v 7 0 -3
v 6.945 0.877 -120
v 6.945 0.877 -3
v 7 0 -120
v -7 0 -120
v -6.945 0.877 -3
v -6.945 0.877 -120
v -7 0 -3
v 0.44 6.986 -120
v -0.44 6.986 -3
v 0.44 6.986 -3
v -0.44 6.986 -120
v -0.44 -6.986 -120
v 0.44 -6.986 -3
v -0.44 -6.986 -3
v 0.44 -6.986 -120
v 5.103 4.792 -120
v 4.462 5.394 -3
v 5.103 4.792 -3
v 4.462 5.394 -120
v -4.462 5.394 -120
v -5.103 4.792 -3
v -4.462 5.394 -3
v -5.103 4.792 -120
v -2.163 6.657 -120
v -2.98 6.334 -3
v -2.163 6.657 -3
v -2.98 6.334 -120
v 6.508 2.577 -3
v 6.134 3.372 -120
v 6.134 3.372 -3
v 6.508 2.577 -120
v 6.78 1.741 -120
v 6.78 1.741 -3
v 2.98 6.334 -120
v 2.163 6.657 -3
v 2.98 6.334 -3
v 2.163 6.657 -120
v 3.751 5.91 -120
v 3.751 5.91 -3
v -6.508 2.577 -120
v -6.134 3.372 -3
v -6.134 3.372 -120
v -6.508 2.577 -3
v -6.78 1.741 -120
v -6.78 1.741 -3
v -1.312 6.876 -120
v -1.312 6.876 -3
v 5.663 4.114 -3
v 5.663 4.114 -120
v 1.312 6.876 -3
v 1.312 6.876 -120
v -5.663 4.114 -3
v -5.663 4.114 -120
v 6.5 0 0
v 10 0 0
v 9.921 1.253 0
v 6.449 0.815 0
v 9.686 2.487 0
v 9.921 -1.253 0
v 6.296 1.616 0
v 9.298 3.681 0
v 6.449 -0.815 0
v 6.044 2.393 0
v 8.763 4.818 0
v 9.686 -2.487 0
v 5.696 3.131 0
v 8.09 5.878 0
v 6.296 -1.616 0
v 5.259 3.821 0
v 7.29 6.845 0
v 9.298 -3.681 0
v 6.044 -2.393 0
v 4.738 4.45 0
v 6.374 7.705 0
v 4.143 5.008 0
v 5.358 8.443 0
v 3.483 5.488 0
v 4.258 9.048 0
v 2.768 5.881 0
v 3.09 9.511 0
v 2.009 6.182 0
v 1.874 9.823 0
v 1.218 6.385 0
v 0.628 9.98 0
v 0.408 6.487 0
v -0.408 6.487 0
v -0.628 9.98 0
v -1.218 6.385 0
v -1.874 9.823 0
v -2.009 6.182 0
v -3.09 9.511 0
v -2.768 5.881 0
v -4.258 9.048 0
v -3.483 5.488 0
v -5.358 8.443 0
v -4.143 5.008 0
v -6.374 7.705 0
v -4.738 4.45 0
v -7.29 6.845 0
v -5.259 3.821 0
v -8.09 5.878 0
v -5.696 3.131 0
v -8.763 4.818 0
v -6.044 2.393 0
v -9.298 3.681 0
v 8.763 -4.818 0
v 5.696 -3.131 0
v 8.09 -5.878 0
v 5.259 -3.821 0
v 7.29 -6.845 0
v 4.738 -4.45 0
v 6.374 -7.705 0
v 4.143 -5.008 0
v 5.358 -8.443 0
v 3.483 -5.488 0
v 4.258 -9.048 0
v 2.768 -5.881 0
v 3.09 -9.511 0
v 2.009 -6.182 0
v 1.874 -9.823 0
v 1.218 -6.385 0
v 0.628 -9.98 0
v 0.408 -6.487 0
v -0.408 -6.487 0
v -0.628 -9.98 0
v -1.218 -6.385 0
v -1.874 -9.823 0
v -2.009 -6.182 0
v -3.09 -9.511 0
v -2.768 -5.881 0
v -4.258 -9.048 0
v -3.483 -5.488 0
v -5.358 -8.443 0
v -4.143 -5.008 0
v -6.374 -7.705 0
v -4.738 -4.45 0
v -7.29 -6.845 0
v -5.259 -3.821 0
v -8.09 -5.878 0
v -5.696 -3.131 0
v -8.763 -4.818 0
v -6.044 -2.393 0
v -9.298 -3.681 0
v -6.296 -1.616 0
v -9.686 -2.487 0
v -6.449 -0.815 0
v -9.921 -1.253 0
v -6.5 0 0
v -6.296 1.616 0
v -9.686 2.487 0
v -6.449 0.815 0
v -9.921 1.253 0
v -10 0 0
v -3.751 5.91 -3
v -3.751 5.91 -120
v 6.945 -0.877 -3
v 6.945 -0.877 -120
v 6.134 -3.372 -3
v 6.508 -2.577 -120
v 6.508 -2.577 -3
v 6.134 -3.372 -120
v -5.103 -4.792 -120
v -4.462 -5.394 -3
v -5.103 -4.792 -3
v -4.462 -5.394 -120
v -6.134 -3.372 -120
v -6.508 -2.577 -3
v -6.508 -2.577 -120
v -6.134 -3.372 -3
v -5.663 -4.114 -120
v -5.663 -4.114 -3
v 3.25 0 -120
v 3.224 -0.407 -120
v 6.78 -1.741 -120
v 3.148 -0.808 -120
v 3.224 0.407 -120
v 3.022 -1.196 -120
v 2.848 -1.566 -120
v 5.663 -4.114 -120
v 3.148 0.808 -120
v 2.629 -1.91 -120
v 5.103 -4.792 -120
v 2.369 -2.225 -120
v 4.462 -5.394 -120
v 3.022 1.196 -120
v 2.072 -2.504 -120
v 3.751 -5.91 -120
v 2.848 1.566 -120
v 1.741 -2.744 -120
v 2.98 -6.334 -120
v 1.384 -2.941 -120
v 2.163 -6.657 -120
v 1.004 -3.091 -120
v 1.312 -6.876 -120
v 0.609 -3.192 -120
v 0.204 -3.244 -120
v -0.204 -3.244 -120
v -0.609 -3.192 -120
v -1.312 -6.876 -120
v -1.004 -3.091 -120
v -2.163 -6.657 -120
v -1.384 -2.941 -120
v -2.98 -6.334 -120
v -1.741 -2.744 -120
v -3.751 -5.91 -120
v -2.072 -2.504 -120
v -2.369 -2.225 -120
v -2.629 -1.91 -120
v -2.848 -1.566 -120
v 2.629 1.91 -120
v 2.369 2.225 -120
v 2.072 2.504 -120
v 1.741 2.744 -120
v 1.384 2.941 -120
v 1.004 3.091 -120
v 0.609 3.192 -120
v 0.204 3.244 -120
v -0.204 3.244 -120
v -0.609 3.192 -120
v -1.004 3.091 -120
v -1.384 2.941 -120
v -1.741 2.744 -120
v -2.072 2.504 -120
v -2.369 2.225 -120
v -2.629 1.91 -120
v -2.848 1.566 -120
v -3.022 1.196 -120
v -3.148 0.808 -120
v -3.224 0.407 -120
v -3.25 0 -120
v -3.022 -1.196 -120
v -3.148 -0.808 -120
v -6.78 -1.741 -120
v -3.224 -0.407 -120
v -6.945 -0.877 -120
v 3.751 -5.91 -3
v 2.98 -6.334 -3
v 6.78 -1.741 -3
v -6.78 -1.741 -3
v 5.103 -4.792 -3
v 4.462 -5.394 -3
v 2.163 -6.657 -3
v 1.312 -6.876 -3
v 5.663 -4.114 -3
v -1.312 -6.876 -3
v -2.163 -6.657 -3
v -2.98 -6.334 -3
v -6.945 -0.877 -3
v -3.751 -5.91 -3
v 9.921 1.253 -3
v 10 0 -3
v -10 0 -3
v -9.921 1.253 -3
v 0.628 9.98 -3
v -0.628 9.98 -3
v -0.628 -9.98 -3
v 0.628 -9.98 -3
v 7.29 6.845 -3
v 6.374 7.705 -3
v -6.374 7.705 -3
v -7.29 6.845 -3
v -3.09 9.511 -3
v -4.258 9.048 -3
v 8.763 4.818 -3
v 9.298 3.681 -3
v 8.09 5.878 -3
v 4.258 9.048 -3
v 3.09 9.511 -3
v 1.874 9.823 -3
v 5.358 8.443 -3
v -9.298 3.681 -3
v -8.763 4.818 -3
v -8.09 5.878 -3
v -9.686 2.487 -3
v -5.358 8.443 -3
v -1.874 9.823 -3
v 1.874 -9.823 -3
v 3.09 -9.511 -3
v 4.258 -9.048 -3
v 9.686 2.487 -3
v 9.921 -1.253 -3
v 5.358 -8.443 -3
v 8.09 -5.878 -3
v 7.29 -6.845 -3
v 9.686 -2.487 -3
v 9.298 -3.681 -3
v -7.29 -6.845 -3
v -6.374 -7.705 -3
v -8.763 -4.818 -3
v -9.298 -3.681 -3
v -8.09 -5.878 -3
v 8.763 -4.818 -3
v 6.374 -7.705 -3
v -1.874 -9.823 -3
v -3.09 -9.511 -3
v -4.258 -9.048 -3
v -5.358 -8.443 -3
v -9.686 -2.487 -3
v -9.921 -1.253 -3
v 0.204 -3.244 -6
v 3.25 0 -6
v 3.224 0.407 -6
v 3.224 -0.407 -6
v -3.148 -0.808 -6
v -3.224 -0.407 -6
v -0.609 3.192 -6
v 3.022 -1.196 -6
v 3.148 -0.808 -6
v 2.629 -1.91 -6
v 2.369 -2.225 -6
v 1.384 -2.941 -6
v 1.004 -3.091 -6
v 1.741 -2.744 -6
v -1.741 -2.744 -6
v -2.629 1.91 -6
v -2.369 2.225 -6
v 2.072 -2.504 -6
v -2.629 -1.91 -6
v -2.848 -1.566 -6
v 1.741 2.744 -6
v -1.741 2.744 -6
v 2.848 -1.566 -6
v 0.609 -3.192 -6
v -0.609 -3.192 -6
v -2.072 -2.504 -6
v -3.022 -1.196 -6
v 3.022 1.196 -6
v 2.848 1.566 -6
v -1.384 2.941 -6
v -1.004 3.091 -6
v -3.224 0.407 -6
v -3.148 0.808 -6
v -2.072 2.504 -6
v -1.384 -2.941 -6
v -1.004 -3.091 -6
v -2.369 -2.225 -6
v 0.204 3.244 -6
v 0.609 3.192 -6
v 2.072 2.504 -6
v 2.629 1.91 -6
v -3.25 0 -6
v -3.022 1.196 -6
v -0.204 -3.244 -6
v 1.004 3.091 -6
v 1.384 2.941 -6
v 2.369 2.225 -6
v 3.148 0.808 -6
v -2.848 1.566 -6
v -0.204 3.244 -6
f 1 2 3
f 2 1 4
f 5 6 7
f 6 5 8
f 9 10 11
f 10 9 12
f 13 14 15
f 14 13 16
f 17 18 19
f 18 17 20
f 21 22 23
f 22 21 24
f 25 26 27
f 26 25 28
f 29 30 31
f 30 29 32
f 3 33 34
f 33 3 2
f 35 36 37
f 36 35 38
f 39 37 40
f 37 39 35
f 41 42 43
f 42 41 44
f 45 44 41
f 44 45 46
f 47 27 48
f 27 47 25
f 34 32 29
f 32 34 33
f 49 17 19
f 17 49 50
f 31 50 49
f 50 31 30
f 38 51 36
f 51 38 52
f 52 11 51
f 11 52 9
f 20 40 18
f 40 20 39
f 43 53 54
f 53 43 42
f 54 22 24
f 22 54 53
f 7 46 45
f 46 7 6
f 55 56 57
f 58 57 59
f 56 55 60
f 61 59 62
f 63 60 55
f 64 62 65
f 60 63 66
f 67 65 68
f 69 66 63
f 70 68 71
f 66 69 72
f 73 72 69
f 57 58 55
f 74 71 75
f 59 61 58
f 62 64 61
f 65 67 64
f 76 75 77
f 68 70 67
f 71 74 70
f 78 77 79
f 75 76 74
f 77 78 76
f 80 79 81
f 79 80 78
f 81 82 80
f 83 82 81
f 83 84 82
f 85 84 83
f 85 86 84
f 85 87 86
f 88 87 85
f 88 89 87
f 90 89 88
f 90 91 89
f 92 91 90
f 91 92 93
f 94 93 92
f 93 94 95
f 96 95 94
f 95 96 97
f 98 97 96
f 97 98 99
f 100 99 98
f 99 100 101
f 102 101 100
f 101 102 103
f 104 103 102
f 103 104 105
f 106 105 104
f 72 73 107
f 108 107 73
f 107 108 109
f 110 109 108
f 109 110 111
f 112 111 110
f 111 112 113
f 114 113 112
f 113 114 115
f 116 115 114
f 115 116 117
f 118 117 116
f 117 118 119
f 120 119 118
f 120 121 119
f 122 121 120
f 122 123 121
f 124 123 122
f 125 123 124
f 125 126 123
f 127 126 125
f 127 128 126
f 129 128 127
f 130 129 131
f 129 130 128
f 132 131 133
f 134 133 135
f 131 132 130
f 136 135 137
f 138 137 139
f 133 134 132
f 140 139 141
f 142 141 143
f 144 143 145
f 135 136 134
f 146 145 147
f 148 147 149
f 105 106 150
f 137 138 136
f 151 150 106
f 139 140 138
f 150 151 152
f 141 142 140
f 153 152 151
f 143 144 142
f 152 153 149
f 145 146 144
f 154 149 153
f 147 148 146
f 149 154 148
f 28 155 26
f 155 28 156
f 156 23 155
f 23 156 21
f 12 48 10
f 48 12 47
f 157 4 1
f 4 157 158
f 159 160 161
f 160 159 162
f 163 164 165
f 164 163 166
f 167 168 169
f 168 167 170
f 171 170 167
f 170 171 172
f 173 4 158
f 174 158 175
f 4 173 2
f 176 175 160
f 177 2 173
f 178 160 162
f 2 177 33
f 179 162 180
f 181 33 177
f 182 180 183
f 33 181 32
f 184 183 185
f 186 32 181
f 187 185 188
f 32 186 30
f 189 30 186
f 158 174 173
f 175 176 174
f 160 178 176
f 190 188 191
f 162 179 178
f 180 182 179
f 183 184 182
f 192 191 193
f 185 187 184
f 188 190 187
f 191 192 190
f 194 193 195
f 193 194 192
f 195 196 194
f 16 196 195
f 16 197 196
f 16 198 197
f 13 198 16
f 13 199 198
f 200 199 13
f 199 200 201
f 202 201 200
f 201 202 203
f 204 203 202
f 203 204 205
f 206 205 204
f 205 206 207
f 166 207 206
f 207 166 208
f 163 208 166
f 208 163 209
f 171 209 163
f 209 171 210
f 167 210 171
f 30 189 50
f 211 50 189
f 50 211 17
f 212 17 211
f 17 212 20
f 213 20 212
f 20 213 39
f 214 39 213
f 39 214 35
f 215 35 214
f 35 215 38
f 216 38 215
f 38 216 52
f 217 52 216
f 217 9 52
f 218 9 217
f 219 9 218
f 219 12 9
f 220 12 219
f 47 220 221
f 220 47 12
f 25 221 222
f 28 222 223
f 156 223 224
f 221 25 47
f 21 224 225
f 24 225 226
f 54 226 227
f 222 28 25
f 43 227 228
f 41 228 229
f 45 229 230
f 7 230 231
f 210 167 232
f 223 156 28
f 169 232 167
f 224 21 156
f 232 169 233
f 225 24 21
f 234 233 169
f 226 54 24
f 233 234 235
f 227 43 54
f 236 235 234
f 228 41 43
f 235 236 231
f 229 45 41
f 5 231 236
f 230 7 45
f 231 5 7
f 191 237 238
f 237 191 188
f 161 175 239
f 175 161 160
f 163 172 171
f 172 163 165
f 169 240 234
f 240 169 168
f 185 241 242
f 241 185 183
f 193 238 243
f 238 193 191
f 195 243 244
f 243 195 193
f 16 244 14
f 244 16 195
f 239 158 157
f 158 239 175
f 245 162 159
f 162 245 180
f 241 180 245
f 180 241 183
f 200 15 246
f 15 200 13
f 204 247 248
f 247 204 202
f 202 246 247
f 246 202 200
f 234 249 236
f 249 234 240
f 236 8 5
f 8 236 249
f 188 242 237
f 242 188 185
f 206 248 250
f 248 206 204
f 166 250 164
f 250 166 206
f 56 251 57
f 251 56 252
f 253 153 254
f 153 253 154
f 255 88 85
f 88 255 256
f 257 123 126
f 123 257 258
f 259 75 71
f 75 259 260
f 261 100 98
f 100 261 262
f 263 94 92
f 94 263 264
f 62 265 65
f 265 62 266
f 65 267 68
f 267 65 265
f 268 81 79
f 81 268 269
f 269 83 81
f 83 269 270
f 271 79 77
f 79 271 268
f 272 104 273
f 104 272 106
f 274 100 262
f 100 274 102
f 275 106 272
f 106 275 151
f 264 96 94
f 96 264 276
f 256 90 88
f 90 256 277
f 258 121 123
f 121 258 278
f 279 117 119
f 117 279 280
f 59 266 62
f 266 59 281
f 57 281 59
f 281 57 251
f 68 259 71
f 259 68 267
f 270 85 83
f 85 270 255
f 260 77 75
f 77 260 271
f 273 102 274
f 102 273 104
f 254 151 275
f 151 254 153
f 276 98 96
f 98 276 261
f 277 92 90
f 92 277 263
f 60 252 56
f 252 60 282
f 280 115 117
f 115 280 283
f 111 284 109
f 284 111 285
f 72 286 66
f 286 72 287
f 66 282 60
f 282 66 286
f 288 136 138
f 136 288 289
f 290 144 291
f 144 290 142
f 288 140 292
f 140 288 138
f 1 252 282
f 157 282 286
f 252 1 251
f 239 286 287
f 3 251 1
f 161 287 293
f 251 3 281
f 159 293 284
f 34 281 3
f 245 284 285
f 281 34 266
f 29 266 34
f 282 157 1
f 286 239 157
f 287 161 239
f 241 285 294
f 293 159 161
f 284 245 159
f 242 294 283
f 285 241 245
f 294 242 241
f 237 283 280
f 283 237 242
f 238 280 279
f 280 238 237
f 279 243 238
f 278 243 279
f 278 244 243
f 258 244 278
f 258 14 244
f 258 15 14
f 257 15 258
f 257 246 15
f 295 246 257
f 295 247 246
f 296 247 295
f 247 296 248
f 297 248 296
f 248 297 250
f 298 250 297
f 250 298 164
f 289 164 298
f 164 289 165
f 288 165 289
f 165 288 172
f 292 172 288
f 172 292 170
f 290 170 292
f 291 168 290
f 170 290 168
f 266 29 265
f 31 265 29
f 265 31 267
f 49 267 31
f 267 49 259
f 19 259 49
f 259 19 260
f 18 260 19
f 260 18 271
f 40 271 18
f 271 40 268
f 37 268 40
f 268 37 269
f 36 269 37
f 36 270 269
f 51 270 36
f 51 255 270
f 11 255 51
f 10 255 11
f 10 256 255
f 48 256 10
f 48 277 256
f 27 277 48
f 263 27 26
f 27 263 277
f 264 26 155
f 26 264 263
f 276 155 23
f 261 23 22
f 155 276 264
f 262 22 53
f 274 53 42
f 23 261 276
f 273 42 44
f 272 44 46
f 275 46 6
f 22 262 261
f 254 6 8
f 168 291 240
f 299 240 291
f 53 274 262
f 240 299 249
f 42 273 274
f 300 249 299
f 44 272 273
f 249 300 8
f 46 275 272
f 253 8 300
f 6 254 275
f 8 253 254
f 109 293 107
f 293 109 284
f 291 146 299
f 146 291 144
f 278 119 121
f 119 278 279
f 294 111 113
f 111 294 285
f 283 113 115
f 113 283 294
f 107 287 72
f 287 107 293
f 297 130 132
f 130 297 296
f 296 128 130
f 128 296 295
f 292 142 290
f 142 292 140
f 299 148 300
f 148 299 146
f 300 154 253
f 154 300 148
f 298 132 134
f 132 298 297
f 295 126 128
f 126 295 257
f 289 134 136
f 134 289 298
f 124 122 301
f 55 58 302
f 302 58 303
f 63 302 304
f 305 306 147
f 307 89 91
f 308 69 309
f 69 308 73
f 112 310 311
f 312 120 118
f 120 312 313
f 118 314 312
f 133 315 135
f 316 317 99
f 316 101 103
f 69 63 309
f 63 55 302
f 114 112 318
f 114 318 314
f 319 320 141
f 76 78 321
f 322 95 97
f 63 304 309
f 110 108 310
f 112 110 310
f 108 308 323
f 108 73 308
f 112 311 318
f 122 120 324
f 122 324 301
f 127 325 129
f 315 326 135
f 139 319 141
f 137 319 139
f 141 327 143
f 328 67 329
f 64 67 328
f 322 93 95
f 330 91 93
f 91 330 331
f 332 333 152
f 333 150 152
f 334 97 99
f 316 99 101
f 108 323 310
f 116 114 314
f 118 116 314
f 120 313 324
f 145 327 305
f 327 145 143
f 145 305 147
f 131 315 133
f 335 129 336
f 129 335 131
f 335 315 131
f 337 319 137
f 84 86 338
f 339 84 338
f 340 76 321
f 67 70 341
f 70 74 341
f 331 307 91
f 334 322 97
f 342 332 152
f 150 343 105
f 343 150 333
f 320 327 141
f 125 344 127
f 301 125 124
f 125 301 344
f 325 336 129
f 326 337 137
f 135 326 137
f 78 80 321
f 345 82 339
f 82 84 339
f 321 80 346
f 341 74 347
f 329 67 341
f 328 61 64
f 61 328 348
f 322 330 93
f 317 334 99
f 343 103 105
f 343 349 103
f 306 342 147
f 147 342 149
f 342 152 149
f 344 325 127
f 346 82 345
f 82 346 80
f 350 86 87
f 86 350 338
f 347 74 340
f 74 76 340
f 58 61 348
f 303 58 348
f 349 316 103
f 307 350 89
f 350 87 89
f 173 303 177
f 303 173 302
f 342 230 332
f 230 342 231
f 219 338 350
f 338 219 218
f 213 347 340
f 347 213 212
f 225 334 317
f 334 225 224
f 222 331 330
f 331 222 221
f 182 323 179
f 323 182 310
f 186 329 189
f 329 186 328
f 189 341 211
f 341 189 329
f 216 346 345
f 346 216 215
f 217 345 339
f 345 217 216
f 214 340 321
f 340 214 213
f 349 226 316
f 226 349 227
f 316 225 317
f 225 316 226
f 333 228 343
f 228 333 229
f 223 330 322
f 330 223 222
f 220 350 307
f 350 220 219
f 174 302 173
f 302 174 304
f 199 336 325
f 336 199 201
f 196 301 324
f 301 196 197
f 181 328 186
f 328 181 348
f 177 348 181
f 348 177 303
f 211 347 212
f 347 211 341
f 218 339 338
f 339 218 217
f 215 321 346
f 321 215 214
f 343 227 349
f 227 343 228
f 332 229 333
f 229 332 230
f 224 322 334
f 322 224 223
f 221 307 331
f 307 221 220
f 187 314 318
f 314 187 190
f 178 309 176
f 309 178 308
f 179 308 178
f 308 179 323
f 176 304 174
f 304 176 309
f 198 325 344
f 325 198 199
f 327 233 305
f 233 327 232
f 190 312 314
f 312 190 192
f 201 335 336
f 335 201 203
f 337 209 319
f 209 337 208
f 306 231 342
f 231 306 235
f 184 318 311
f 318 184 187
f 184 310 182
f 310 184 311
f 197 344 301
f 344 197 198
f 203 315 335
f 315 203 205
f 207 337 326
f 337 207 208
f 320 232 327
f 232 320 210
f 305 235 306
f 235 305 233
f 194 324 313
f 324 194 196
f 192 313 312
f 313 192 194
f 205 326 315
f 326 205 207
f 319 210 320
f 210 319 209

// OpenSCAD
$fn = 50;


difference() {
	union() {
		translate(v = [0, 0, -120.0000000000]) {
			cylinder(h = 120, r = 7.0000000000);
		}
		translate(v = [0, 0, -3.0000000000]) {
			cylinder(h = 3, r = 10.0000000000);
		}
	}
	union() {
		translate(v = [0, 0, 0]) {
			rotate(a = [0, 0, 0]) {
				difference() {
					union() {
						#translate(v = [0, 0, -120.0000000000]) {
							cylinder(h = 120, r = 2.2500000000);
						}
						#translate(v = [0, 0, -6]) {
							cylinder(h = 6, r1 = 3.2500000000, r2 = 6.5000000000);
						}
						#translate(v = [0, 0, -120.0000000000]) {
							cylinder(h = 120, r = 3.2500000000);
						}
						#translate(v = [0, 0, -120.0000000000]) {
							cylinder(h = 120, r = 2.2500000000);
						}
					}
					union();
				}
			}
		}
	}
}
